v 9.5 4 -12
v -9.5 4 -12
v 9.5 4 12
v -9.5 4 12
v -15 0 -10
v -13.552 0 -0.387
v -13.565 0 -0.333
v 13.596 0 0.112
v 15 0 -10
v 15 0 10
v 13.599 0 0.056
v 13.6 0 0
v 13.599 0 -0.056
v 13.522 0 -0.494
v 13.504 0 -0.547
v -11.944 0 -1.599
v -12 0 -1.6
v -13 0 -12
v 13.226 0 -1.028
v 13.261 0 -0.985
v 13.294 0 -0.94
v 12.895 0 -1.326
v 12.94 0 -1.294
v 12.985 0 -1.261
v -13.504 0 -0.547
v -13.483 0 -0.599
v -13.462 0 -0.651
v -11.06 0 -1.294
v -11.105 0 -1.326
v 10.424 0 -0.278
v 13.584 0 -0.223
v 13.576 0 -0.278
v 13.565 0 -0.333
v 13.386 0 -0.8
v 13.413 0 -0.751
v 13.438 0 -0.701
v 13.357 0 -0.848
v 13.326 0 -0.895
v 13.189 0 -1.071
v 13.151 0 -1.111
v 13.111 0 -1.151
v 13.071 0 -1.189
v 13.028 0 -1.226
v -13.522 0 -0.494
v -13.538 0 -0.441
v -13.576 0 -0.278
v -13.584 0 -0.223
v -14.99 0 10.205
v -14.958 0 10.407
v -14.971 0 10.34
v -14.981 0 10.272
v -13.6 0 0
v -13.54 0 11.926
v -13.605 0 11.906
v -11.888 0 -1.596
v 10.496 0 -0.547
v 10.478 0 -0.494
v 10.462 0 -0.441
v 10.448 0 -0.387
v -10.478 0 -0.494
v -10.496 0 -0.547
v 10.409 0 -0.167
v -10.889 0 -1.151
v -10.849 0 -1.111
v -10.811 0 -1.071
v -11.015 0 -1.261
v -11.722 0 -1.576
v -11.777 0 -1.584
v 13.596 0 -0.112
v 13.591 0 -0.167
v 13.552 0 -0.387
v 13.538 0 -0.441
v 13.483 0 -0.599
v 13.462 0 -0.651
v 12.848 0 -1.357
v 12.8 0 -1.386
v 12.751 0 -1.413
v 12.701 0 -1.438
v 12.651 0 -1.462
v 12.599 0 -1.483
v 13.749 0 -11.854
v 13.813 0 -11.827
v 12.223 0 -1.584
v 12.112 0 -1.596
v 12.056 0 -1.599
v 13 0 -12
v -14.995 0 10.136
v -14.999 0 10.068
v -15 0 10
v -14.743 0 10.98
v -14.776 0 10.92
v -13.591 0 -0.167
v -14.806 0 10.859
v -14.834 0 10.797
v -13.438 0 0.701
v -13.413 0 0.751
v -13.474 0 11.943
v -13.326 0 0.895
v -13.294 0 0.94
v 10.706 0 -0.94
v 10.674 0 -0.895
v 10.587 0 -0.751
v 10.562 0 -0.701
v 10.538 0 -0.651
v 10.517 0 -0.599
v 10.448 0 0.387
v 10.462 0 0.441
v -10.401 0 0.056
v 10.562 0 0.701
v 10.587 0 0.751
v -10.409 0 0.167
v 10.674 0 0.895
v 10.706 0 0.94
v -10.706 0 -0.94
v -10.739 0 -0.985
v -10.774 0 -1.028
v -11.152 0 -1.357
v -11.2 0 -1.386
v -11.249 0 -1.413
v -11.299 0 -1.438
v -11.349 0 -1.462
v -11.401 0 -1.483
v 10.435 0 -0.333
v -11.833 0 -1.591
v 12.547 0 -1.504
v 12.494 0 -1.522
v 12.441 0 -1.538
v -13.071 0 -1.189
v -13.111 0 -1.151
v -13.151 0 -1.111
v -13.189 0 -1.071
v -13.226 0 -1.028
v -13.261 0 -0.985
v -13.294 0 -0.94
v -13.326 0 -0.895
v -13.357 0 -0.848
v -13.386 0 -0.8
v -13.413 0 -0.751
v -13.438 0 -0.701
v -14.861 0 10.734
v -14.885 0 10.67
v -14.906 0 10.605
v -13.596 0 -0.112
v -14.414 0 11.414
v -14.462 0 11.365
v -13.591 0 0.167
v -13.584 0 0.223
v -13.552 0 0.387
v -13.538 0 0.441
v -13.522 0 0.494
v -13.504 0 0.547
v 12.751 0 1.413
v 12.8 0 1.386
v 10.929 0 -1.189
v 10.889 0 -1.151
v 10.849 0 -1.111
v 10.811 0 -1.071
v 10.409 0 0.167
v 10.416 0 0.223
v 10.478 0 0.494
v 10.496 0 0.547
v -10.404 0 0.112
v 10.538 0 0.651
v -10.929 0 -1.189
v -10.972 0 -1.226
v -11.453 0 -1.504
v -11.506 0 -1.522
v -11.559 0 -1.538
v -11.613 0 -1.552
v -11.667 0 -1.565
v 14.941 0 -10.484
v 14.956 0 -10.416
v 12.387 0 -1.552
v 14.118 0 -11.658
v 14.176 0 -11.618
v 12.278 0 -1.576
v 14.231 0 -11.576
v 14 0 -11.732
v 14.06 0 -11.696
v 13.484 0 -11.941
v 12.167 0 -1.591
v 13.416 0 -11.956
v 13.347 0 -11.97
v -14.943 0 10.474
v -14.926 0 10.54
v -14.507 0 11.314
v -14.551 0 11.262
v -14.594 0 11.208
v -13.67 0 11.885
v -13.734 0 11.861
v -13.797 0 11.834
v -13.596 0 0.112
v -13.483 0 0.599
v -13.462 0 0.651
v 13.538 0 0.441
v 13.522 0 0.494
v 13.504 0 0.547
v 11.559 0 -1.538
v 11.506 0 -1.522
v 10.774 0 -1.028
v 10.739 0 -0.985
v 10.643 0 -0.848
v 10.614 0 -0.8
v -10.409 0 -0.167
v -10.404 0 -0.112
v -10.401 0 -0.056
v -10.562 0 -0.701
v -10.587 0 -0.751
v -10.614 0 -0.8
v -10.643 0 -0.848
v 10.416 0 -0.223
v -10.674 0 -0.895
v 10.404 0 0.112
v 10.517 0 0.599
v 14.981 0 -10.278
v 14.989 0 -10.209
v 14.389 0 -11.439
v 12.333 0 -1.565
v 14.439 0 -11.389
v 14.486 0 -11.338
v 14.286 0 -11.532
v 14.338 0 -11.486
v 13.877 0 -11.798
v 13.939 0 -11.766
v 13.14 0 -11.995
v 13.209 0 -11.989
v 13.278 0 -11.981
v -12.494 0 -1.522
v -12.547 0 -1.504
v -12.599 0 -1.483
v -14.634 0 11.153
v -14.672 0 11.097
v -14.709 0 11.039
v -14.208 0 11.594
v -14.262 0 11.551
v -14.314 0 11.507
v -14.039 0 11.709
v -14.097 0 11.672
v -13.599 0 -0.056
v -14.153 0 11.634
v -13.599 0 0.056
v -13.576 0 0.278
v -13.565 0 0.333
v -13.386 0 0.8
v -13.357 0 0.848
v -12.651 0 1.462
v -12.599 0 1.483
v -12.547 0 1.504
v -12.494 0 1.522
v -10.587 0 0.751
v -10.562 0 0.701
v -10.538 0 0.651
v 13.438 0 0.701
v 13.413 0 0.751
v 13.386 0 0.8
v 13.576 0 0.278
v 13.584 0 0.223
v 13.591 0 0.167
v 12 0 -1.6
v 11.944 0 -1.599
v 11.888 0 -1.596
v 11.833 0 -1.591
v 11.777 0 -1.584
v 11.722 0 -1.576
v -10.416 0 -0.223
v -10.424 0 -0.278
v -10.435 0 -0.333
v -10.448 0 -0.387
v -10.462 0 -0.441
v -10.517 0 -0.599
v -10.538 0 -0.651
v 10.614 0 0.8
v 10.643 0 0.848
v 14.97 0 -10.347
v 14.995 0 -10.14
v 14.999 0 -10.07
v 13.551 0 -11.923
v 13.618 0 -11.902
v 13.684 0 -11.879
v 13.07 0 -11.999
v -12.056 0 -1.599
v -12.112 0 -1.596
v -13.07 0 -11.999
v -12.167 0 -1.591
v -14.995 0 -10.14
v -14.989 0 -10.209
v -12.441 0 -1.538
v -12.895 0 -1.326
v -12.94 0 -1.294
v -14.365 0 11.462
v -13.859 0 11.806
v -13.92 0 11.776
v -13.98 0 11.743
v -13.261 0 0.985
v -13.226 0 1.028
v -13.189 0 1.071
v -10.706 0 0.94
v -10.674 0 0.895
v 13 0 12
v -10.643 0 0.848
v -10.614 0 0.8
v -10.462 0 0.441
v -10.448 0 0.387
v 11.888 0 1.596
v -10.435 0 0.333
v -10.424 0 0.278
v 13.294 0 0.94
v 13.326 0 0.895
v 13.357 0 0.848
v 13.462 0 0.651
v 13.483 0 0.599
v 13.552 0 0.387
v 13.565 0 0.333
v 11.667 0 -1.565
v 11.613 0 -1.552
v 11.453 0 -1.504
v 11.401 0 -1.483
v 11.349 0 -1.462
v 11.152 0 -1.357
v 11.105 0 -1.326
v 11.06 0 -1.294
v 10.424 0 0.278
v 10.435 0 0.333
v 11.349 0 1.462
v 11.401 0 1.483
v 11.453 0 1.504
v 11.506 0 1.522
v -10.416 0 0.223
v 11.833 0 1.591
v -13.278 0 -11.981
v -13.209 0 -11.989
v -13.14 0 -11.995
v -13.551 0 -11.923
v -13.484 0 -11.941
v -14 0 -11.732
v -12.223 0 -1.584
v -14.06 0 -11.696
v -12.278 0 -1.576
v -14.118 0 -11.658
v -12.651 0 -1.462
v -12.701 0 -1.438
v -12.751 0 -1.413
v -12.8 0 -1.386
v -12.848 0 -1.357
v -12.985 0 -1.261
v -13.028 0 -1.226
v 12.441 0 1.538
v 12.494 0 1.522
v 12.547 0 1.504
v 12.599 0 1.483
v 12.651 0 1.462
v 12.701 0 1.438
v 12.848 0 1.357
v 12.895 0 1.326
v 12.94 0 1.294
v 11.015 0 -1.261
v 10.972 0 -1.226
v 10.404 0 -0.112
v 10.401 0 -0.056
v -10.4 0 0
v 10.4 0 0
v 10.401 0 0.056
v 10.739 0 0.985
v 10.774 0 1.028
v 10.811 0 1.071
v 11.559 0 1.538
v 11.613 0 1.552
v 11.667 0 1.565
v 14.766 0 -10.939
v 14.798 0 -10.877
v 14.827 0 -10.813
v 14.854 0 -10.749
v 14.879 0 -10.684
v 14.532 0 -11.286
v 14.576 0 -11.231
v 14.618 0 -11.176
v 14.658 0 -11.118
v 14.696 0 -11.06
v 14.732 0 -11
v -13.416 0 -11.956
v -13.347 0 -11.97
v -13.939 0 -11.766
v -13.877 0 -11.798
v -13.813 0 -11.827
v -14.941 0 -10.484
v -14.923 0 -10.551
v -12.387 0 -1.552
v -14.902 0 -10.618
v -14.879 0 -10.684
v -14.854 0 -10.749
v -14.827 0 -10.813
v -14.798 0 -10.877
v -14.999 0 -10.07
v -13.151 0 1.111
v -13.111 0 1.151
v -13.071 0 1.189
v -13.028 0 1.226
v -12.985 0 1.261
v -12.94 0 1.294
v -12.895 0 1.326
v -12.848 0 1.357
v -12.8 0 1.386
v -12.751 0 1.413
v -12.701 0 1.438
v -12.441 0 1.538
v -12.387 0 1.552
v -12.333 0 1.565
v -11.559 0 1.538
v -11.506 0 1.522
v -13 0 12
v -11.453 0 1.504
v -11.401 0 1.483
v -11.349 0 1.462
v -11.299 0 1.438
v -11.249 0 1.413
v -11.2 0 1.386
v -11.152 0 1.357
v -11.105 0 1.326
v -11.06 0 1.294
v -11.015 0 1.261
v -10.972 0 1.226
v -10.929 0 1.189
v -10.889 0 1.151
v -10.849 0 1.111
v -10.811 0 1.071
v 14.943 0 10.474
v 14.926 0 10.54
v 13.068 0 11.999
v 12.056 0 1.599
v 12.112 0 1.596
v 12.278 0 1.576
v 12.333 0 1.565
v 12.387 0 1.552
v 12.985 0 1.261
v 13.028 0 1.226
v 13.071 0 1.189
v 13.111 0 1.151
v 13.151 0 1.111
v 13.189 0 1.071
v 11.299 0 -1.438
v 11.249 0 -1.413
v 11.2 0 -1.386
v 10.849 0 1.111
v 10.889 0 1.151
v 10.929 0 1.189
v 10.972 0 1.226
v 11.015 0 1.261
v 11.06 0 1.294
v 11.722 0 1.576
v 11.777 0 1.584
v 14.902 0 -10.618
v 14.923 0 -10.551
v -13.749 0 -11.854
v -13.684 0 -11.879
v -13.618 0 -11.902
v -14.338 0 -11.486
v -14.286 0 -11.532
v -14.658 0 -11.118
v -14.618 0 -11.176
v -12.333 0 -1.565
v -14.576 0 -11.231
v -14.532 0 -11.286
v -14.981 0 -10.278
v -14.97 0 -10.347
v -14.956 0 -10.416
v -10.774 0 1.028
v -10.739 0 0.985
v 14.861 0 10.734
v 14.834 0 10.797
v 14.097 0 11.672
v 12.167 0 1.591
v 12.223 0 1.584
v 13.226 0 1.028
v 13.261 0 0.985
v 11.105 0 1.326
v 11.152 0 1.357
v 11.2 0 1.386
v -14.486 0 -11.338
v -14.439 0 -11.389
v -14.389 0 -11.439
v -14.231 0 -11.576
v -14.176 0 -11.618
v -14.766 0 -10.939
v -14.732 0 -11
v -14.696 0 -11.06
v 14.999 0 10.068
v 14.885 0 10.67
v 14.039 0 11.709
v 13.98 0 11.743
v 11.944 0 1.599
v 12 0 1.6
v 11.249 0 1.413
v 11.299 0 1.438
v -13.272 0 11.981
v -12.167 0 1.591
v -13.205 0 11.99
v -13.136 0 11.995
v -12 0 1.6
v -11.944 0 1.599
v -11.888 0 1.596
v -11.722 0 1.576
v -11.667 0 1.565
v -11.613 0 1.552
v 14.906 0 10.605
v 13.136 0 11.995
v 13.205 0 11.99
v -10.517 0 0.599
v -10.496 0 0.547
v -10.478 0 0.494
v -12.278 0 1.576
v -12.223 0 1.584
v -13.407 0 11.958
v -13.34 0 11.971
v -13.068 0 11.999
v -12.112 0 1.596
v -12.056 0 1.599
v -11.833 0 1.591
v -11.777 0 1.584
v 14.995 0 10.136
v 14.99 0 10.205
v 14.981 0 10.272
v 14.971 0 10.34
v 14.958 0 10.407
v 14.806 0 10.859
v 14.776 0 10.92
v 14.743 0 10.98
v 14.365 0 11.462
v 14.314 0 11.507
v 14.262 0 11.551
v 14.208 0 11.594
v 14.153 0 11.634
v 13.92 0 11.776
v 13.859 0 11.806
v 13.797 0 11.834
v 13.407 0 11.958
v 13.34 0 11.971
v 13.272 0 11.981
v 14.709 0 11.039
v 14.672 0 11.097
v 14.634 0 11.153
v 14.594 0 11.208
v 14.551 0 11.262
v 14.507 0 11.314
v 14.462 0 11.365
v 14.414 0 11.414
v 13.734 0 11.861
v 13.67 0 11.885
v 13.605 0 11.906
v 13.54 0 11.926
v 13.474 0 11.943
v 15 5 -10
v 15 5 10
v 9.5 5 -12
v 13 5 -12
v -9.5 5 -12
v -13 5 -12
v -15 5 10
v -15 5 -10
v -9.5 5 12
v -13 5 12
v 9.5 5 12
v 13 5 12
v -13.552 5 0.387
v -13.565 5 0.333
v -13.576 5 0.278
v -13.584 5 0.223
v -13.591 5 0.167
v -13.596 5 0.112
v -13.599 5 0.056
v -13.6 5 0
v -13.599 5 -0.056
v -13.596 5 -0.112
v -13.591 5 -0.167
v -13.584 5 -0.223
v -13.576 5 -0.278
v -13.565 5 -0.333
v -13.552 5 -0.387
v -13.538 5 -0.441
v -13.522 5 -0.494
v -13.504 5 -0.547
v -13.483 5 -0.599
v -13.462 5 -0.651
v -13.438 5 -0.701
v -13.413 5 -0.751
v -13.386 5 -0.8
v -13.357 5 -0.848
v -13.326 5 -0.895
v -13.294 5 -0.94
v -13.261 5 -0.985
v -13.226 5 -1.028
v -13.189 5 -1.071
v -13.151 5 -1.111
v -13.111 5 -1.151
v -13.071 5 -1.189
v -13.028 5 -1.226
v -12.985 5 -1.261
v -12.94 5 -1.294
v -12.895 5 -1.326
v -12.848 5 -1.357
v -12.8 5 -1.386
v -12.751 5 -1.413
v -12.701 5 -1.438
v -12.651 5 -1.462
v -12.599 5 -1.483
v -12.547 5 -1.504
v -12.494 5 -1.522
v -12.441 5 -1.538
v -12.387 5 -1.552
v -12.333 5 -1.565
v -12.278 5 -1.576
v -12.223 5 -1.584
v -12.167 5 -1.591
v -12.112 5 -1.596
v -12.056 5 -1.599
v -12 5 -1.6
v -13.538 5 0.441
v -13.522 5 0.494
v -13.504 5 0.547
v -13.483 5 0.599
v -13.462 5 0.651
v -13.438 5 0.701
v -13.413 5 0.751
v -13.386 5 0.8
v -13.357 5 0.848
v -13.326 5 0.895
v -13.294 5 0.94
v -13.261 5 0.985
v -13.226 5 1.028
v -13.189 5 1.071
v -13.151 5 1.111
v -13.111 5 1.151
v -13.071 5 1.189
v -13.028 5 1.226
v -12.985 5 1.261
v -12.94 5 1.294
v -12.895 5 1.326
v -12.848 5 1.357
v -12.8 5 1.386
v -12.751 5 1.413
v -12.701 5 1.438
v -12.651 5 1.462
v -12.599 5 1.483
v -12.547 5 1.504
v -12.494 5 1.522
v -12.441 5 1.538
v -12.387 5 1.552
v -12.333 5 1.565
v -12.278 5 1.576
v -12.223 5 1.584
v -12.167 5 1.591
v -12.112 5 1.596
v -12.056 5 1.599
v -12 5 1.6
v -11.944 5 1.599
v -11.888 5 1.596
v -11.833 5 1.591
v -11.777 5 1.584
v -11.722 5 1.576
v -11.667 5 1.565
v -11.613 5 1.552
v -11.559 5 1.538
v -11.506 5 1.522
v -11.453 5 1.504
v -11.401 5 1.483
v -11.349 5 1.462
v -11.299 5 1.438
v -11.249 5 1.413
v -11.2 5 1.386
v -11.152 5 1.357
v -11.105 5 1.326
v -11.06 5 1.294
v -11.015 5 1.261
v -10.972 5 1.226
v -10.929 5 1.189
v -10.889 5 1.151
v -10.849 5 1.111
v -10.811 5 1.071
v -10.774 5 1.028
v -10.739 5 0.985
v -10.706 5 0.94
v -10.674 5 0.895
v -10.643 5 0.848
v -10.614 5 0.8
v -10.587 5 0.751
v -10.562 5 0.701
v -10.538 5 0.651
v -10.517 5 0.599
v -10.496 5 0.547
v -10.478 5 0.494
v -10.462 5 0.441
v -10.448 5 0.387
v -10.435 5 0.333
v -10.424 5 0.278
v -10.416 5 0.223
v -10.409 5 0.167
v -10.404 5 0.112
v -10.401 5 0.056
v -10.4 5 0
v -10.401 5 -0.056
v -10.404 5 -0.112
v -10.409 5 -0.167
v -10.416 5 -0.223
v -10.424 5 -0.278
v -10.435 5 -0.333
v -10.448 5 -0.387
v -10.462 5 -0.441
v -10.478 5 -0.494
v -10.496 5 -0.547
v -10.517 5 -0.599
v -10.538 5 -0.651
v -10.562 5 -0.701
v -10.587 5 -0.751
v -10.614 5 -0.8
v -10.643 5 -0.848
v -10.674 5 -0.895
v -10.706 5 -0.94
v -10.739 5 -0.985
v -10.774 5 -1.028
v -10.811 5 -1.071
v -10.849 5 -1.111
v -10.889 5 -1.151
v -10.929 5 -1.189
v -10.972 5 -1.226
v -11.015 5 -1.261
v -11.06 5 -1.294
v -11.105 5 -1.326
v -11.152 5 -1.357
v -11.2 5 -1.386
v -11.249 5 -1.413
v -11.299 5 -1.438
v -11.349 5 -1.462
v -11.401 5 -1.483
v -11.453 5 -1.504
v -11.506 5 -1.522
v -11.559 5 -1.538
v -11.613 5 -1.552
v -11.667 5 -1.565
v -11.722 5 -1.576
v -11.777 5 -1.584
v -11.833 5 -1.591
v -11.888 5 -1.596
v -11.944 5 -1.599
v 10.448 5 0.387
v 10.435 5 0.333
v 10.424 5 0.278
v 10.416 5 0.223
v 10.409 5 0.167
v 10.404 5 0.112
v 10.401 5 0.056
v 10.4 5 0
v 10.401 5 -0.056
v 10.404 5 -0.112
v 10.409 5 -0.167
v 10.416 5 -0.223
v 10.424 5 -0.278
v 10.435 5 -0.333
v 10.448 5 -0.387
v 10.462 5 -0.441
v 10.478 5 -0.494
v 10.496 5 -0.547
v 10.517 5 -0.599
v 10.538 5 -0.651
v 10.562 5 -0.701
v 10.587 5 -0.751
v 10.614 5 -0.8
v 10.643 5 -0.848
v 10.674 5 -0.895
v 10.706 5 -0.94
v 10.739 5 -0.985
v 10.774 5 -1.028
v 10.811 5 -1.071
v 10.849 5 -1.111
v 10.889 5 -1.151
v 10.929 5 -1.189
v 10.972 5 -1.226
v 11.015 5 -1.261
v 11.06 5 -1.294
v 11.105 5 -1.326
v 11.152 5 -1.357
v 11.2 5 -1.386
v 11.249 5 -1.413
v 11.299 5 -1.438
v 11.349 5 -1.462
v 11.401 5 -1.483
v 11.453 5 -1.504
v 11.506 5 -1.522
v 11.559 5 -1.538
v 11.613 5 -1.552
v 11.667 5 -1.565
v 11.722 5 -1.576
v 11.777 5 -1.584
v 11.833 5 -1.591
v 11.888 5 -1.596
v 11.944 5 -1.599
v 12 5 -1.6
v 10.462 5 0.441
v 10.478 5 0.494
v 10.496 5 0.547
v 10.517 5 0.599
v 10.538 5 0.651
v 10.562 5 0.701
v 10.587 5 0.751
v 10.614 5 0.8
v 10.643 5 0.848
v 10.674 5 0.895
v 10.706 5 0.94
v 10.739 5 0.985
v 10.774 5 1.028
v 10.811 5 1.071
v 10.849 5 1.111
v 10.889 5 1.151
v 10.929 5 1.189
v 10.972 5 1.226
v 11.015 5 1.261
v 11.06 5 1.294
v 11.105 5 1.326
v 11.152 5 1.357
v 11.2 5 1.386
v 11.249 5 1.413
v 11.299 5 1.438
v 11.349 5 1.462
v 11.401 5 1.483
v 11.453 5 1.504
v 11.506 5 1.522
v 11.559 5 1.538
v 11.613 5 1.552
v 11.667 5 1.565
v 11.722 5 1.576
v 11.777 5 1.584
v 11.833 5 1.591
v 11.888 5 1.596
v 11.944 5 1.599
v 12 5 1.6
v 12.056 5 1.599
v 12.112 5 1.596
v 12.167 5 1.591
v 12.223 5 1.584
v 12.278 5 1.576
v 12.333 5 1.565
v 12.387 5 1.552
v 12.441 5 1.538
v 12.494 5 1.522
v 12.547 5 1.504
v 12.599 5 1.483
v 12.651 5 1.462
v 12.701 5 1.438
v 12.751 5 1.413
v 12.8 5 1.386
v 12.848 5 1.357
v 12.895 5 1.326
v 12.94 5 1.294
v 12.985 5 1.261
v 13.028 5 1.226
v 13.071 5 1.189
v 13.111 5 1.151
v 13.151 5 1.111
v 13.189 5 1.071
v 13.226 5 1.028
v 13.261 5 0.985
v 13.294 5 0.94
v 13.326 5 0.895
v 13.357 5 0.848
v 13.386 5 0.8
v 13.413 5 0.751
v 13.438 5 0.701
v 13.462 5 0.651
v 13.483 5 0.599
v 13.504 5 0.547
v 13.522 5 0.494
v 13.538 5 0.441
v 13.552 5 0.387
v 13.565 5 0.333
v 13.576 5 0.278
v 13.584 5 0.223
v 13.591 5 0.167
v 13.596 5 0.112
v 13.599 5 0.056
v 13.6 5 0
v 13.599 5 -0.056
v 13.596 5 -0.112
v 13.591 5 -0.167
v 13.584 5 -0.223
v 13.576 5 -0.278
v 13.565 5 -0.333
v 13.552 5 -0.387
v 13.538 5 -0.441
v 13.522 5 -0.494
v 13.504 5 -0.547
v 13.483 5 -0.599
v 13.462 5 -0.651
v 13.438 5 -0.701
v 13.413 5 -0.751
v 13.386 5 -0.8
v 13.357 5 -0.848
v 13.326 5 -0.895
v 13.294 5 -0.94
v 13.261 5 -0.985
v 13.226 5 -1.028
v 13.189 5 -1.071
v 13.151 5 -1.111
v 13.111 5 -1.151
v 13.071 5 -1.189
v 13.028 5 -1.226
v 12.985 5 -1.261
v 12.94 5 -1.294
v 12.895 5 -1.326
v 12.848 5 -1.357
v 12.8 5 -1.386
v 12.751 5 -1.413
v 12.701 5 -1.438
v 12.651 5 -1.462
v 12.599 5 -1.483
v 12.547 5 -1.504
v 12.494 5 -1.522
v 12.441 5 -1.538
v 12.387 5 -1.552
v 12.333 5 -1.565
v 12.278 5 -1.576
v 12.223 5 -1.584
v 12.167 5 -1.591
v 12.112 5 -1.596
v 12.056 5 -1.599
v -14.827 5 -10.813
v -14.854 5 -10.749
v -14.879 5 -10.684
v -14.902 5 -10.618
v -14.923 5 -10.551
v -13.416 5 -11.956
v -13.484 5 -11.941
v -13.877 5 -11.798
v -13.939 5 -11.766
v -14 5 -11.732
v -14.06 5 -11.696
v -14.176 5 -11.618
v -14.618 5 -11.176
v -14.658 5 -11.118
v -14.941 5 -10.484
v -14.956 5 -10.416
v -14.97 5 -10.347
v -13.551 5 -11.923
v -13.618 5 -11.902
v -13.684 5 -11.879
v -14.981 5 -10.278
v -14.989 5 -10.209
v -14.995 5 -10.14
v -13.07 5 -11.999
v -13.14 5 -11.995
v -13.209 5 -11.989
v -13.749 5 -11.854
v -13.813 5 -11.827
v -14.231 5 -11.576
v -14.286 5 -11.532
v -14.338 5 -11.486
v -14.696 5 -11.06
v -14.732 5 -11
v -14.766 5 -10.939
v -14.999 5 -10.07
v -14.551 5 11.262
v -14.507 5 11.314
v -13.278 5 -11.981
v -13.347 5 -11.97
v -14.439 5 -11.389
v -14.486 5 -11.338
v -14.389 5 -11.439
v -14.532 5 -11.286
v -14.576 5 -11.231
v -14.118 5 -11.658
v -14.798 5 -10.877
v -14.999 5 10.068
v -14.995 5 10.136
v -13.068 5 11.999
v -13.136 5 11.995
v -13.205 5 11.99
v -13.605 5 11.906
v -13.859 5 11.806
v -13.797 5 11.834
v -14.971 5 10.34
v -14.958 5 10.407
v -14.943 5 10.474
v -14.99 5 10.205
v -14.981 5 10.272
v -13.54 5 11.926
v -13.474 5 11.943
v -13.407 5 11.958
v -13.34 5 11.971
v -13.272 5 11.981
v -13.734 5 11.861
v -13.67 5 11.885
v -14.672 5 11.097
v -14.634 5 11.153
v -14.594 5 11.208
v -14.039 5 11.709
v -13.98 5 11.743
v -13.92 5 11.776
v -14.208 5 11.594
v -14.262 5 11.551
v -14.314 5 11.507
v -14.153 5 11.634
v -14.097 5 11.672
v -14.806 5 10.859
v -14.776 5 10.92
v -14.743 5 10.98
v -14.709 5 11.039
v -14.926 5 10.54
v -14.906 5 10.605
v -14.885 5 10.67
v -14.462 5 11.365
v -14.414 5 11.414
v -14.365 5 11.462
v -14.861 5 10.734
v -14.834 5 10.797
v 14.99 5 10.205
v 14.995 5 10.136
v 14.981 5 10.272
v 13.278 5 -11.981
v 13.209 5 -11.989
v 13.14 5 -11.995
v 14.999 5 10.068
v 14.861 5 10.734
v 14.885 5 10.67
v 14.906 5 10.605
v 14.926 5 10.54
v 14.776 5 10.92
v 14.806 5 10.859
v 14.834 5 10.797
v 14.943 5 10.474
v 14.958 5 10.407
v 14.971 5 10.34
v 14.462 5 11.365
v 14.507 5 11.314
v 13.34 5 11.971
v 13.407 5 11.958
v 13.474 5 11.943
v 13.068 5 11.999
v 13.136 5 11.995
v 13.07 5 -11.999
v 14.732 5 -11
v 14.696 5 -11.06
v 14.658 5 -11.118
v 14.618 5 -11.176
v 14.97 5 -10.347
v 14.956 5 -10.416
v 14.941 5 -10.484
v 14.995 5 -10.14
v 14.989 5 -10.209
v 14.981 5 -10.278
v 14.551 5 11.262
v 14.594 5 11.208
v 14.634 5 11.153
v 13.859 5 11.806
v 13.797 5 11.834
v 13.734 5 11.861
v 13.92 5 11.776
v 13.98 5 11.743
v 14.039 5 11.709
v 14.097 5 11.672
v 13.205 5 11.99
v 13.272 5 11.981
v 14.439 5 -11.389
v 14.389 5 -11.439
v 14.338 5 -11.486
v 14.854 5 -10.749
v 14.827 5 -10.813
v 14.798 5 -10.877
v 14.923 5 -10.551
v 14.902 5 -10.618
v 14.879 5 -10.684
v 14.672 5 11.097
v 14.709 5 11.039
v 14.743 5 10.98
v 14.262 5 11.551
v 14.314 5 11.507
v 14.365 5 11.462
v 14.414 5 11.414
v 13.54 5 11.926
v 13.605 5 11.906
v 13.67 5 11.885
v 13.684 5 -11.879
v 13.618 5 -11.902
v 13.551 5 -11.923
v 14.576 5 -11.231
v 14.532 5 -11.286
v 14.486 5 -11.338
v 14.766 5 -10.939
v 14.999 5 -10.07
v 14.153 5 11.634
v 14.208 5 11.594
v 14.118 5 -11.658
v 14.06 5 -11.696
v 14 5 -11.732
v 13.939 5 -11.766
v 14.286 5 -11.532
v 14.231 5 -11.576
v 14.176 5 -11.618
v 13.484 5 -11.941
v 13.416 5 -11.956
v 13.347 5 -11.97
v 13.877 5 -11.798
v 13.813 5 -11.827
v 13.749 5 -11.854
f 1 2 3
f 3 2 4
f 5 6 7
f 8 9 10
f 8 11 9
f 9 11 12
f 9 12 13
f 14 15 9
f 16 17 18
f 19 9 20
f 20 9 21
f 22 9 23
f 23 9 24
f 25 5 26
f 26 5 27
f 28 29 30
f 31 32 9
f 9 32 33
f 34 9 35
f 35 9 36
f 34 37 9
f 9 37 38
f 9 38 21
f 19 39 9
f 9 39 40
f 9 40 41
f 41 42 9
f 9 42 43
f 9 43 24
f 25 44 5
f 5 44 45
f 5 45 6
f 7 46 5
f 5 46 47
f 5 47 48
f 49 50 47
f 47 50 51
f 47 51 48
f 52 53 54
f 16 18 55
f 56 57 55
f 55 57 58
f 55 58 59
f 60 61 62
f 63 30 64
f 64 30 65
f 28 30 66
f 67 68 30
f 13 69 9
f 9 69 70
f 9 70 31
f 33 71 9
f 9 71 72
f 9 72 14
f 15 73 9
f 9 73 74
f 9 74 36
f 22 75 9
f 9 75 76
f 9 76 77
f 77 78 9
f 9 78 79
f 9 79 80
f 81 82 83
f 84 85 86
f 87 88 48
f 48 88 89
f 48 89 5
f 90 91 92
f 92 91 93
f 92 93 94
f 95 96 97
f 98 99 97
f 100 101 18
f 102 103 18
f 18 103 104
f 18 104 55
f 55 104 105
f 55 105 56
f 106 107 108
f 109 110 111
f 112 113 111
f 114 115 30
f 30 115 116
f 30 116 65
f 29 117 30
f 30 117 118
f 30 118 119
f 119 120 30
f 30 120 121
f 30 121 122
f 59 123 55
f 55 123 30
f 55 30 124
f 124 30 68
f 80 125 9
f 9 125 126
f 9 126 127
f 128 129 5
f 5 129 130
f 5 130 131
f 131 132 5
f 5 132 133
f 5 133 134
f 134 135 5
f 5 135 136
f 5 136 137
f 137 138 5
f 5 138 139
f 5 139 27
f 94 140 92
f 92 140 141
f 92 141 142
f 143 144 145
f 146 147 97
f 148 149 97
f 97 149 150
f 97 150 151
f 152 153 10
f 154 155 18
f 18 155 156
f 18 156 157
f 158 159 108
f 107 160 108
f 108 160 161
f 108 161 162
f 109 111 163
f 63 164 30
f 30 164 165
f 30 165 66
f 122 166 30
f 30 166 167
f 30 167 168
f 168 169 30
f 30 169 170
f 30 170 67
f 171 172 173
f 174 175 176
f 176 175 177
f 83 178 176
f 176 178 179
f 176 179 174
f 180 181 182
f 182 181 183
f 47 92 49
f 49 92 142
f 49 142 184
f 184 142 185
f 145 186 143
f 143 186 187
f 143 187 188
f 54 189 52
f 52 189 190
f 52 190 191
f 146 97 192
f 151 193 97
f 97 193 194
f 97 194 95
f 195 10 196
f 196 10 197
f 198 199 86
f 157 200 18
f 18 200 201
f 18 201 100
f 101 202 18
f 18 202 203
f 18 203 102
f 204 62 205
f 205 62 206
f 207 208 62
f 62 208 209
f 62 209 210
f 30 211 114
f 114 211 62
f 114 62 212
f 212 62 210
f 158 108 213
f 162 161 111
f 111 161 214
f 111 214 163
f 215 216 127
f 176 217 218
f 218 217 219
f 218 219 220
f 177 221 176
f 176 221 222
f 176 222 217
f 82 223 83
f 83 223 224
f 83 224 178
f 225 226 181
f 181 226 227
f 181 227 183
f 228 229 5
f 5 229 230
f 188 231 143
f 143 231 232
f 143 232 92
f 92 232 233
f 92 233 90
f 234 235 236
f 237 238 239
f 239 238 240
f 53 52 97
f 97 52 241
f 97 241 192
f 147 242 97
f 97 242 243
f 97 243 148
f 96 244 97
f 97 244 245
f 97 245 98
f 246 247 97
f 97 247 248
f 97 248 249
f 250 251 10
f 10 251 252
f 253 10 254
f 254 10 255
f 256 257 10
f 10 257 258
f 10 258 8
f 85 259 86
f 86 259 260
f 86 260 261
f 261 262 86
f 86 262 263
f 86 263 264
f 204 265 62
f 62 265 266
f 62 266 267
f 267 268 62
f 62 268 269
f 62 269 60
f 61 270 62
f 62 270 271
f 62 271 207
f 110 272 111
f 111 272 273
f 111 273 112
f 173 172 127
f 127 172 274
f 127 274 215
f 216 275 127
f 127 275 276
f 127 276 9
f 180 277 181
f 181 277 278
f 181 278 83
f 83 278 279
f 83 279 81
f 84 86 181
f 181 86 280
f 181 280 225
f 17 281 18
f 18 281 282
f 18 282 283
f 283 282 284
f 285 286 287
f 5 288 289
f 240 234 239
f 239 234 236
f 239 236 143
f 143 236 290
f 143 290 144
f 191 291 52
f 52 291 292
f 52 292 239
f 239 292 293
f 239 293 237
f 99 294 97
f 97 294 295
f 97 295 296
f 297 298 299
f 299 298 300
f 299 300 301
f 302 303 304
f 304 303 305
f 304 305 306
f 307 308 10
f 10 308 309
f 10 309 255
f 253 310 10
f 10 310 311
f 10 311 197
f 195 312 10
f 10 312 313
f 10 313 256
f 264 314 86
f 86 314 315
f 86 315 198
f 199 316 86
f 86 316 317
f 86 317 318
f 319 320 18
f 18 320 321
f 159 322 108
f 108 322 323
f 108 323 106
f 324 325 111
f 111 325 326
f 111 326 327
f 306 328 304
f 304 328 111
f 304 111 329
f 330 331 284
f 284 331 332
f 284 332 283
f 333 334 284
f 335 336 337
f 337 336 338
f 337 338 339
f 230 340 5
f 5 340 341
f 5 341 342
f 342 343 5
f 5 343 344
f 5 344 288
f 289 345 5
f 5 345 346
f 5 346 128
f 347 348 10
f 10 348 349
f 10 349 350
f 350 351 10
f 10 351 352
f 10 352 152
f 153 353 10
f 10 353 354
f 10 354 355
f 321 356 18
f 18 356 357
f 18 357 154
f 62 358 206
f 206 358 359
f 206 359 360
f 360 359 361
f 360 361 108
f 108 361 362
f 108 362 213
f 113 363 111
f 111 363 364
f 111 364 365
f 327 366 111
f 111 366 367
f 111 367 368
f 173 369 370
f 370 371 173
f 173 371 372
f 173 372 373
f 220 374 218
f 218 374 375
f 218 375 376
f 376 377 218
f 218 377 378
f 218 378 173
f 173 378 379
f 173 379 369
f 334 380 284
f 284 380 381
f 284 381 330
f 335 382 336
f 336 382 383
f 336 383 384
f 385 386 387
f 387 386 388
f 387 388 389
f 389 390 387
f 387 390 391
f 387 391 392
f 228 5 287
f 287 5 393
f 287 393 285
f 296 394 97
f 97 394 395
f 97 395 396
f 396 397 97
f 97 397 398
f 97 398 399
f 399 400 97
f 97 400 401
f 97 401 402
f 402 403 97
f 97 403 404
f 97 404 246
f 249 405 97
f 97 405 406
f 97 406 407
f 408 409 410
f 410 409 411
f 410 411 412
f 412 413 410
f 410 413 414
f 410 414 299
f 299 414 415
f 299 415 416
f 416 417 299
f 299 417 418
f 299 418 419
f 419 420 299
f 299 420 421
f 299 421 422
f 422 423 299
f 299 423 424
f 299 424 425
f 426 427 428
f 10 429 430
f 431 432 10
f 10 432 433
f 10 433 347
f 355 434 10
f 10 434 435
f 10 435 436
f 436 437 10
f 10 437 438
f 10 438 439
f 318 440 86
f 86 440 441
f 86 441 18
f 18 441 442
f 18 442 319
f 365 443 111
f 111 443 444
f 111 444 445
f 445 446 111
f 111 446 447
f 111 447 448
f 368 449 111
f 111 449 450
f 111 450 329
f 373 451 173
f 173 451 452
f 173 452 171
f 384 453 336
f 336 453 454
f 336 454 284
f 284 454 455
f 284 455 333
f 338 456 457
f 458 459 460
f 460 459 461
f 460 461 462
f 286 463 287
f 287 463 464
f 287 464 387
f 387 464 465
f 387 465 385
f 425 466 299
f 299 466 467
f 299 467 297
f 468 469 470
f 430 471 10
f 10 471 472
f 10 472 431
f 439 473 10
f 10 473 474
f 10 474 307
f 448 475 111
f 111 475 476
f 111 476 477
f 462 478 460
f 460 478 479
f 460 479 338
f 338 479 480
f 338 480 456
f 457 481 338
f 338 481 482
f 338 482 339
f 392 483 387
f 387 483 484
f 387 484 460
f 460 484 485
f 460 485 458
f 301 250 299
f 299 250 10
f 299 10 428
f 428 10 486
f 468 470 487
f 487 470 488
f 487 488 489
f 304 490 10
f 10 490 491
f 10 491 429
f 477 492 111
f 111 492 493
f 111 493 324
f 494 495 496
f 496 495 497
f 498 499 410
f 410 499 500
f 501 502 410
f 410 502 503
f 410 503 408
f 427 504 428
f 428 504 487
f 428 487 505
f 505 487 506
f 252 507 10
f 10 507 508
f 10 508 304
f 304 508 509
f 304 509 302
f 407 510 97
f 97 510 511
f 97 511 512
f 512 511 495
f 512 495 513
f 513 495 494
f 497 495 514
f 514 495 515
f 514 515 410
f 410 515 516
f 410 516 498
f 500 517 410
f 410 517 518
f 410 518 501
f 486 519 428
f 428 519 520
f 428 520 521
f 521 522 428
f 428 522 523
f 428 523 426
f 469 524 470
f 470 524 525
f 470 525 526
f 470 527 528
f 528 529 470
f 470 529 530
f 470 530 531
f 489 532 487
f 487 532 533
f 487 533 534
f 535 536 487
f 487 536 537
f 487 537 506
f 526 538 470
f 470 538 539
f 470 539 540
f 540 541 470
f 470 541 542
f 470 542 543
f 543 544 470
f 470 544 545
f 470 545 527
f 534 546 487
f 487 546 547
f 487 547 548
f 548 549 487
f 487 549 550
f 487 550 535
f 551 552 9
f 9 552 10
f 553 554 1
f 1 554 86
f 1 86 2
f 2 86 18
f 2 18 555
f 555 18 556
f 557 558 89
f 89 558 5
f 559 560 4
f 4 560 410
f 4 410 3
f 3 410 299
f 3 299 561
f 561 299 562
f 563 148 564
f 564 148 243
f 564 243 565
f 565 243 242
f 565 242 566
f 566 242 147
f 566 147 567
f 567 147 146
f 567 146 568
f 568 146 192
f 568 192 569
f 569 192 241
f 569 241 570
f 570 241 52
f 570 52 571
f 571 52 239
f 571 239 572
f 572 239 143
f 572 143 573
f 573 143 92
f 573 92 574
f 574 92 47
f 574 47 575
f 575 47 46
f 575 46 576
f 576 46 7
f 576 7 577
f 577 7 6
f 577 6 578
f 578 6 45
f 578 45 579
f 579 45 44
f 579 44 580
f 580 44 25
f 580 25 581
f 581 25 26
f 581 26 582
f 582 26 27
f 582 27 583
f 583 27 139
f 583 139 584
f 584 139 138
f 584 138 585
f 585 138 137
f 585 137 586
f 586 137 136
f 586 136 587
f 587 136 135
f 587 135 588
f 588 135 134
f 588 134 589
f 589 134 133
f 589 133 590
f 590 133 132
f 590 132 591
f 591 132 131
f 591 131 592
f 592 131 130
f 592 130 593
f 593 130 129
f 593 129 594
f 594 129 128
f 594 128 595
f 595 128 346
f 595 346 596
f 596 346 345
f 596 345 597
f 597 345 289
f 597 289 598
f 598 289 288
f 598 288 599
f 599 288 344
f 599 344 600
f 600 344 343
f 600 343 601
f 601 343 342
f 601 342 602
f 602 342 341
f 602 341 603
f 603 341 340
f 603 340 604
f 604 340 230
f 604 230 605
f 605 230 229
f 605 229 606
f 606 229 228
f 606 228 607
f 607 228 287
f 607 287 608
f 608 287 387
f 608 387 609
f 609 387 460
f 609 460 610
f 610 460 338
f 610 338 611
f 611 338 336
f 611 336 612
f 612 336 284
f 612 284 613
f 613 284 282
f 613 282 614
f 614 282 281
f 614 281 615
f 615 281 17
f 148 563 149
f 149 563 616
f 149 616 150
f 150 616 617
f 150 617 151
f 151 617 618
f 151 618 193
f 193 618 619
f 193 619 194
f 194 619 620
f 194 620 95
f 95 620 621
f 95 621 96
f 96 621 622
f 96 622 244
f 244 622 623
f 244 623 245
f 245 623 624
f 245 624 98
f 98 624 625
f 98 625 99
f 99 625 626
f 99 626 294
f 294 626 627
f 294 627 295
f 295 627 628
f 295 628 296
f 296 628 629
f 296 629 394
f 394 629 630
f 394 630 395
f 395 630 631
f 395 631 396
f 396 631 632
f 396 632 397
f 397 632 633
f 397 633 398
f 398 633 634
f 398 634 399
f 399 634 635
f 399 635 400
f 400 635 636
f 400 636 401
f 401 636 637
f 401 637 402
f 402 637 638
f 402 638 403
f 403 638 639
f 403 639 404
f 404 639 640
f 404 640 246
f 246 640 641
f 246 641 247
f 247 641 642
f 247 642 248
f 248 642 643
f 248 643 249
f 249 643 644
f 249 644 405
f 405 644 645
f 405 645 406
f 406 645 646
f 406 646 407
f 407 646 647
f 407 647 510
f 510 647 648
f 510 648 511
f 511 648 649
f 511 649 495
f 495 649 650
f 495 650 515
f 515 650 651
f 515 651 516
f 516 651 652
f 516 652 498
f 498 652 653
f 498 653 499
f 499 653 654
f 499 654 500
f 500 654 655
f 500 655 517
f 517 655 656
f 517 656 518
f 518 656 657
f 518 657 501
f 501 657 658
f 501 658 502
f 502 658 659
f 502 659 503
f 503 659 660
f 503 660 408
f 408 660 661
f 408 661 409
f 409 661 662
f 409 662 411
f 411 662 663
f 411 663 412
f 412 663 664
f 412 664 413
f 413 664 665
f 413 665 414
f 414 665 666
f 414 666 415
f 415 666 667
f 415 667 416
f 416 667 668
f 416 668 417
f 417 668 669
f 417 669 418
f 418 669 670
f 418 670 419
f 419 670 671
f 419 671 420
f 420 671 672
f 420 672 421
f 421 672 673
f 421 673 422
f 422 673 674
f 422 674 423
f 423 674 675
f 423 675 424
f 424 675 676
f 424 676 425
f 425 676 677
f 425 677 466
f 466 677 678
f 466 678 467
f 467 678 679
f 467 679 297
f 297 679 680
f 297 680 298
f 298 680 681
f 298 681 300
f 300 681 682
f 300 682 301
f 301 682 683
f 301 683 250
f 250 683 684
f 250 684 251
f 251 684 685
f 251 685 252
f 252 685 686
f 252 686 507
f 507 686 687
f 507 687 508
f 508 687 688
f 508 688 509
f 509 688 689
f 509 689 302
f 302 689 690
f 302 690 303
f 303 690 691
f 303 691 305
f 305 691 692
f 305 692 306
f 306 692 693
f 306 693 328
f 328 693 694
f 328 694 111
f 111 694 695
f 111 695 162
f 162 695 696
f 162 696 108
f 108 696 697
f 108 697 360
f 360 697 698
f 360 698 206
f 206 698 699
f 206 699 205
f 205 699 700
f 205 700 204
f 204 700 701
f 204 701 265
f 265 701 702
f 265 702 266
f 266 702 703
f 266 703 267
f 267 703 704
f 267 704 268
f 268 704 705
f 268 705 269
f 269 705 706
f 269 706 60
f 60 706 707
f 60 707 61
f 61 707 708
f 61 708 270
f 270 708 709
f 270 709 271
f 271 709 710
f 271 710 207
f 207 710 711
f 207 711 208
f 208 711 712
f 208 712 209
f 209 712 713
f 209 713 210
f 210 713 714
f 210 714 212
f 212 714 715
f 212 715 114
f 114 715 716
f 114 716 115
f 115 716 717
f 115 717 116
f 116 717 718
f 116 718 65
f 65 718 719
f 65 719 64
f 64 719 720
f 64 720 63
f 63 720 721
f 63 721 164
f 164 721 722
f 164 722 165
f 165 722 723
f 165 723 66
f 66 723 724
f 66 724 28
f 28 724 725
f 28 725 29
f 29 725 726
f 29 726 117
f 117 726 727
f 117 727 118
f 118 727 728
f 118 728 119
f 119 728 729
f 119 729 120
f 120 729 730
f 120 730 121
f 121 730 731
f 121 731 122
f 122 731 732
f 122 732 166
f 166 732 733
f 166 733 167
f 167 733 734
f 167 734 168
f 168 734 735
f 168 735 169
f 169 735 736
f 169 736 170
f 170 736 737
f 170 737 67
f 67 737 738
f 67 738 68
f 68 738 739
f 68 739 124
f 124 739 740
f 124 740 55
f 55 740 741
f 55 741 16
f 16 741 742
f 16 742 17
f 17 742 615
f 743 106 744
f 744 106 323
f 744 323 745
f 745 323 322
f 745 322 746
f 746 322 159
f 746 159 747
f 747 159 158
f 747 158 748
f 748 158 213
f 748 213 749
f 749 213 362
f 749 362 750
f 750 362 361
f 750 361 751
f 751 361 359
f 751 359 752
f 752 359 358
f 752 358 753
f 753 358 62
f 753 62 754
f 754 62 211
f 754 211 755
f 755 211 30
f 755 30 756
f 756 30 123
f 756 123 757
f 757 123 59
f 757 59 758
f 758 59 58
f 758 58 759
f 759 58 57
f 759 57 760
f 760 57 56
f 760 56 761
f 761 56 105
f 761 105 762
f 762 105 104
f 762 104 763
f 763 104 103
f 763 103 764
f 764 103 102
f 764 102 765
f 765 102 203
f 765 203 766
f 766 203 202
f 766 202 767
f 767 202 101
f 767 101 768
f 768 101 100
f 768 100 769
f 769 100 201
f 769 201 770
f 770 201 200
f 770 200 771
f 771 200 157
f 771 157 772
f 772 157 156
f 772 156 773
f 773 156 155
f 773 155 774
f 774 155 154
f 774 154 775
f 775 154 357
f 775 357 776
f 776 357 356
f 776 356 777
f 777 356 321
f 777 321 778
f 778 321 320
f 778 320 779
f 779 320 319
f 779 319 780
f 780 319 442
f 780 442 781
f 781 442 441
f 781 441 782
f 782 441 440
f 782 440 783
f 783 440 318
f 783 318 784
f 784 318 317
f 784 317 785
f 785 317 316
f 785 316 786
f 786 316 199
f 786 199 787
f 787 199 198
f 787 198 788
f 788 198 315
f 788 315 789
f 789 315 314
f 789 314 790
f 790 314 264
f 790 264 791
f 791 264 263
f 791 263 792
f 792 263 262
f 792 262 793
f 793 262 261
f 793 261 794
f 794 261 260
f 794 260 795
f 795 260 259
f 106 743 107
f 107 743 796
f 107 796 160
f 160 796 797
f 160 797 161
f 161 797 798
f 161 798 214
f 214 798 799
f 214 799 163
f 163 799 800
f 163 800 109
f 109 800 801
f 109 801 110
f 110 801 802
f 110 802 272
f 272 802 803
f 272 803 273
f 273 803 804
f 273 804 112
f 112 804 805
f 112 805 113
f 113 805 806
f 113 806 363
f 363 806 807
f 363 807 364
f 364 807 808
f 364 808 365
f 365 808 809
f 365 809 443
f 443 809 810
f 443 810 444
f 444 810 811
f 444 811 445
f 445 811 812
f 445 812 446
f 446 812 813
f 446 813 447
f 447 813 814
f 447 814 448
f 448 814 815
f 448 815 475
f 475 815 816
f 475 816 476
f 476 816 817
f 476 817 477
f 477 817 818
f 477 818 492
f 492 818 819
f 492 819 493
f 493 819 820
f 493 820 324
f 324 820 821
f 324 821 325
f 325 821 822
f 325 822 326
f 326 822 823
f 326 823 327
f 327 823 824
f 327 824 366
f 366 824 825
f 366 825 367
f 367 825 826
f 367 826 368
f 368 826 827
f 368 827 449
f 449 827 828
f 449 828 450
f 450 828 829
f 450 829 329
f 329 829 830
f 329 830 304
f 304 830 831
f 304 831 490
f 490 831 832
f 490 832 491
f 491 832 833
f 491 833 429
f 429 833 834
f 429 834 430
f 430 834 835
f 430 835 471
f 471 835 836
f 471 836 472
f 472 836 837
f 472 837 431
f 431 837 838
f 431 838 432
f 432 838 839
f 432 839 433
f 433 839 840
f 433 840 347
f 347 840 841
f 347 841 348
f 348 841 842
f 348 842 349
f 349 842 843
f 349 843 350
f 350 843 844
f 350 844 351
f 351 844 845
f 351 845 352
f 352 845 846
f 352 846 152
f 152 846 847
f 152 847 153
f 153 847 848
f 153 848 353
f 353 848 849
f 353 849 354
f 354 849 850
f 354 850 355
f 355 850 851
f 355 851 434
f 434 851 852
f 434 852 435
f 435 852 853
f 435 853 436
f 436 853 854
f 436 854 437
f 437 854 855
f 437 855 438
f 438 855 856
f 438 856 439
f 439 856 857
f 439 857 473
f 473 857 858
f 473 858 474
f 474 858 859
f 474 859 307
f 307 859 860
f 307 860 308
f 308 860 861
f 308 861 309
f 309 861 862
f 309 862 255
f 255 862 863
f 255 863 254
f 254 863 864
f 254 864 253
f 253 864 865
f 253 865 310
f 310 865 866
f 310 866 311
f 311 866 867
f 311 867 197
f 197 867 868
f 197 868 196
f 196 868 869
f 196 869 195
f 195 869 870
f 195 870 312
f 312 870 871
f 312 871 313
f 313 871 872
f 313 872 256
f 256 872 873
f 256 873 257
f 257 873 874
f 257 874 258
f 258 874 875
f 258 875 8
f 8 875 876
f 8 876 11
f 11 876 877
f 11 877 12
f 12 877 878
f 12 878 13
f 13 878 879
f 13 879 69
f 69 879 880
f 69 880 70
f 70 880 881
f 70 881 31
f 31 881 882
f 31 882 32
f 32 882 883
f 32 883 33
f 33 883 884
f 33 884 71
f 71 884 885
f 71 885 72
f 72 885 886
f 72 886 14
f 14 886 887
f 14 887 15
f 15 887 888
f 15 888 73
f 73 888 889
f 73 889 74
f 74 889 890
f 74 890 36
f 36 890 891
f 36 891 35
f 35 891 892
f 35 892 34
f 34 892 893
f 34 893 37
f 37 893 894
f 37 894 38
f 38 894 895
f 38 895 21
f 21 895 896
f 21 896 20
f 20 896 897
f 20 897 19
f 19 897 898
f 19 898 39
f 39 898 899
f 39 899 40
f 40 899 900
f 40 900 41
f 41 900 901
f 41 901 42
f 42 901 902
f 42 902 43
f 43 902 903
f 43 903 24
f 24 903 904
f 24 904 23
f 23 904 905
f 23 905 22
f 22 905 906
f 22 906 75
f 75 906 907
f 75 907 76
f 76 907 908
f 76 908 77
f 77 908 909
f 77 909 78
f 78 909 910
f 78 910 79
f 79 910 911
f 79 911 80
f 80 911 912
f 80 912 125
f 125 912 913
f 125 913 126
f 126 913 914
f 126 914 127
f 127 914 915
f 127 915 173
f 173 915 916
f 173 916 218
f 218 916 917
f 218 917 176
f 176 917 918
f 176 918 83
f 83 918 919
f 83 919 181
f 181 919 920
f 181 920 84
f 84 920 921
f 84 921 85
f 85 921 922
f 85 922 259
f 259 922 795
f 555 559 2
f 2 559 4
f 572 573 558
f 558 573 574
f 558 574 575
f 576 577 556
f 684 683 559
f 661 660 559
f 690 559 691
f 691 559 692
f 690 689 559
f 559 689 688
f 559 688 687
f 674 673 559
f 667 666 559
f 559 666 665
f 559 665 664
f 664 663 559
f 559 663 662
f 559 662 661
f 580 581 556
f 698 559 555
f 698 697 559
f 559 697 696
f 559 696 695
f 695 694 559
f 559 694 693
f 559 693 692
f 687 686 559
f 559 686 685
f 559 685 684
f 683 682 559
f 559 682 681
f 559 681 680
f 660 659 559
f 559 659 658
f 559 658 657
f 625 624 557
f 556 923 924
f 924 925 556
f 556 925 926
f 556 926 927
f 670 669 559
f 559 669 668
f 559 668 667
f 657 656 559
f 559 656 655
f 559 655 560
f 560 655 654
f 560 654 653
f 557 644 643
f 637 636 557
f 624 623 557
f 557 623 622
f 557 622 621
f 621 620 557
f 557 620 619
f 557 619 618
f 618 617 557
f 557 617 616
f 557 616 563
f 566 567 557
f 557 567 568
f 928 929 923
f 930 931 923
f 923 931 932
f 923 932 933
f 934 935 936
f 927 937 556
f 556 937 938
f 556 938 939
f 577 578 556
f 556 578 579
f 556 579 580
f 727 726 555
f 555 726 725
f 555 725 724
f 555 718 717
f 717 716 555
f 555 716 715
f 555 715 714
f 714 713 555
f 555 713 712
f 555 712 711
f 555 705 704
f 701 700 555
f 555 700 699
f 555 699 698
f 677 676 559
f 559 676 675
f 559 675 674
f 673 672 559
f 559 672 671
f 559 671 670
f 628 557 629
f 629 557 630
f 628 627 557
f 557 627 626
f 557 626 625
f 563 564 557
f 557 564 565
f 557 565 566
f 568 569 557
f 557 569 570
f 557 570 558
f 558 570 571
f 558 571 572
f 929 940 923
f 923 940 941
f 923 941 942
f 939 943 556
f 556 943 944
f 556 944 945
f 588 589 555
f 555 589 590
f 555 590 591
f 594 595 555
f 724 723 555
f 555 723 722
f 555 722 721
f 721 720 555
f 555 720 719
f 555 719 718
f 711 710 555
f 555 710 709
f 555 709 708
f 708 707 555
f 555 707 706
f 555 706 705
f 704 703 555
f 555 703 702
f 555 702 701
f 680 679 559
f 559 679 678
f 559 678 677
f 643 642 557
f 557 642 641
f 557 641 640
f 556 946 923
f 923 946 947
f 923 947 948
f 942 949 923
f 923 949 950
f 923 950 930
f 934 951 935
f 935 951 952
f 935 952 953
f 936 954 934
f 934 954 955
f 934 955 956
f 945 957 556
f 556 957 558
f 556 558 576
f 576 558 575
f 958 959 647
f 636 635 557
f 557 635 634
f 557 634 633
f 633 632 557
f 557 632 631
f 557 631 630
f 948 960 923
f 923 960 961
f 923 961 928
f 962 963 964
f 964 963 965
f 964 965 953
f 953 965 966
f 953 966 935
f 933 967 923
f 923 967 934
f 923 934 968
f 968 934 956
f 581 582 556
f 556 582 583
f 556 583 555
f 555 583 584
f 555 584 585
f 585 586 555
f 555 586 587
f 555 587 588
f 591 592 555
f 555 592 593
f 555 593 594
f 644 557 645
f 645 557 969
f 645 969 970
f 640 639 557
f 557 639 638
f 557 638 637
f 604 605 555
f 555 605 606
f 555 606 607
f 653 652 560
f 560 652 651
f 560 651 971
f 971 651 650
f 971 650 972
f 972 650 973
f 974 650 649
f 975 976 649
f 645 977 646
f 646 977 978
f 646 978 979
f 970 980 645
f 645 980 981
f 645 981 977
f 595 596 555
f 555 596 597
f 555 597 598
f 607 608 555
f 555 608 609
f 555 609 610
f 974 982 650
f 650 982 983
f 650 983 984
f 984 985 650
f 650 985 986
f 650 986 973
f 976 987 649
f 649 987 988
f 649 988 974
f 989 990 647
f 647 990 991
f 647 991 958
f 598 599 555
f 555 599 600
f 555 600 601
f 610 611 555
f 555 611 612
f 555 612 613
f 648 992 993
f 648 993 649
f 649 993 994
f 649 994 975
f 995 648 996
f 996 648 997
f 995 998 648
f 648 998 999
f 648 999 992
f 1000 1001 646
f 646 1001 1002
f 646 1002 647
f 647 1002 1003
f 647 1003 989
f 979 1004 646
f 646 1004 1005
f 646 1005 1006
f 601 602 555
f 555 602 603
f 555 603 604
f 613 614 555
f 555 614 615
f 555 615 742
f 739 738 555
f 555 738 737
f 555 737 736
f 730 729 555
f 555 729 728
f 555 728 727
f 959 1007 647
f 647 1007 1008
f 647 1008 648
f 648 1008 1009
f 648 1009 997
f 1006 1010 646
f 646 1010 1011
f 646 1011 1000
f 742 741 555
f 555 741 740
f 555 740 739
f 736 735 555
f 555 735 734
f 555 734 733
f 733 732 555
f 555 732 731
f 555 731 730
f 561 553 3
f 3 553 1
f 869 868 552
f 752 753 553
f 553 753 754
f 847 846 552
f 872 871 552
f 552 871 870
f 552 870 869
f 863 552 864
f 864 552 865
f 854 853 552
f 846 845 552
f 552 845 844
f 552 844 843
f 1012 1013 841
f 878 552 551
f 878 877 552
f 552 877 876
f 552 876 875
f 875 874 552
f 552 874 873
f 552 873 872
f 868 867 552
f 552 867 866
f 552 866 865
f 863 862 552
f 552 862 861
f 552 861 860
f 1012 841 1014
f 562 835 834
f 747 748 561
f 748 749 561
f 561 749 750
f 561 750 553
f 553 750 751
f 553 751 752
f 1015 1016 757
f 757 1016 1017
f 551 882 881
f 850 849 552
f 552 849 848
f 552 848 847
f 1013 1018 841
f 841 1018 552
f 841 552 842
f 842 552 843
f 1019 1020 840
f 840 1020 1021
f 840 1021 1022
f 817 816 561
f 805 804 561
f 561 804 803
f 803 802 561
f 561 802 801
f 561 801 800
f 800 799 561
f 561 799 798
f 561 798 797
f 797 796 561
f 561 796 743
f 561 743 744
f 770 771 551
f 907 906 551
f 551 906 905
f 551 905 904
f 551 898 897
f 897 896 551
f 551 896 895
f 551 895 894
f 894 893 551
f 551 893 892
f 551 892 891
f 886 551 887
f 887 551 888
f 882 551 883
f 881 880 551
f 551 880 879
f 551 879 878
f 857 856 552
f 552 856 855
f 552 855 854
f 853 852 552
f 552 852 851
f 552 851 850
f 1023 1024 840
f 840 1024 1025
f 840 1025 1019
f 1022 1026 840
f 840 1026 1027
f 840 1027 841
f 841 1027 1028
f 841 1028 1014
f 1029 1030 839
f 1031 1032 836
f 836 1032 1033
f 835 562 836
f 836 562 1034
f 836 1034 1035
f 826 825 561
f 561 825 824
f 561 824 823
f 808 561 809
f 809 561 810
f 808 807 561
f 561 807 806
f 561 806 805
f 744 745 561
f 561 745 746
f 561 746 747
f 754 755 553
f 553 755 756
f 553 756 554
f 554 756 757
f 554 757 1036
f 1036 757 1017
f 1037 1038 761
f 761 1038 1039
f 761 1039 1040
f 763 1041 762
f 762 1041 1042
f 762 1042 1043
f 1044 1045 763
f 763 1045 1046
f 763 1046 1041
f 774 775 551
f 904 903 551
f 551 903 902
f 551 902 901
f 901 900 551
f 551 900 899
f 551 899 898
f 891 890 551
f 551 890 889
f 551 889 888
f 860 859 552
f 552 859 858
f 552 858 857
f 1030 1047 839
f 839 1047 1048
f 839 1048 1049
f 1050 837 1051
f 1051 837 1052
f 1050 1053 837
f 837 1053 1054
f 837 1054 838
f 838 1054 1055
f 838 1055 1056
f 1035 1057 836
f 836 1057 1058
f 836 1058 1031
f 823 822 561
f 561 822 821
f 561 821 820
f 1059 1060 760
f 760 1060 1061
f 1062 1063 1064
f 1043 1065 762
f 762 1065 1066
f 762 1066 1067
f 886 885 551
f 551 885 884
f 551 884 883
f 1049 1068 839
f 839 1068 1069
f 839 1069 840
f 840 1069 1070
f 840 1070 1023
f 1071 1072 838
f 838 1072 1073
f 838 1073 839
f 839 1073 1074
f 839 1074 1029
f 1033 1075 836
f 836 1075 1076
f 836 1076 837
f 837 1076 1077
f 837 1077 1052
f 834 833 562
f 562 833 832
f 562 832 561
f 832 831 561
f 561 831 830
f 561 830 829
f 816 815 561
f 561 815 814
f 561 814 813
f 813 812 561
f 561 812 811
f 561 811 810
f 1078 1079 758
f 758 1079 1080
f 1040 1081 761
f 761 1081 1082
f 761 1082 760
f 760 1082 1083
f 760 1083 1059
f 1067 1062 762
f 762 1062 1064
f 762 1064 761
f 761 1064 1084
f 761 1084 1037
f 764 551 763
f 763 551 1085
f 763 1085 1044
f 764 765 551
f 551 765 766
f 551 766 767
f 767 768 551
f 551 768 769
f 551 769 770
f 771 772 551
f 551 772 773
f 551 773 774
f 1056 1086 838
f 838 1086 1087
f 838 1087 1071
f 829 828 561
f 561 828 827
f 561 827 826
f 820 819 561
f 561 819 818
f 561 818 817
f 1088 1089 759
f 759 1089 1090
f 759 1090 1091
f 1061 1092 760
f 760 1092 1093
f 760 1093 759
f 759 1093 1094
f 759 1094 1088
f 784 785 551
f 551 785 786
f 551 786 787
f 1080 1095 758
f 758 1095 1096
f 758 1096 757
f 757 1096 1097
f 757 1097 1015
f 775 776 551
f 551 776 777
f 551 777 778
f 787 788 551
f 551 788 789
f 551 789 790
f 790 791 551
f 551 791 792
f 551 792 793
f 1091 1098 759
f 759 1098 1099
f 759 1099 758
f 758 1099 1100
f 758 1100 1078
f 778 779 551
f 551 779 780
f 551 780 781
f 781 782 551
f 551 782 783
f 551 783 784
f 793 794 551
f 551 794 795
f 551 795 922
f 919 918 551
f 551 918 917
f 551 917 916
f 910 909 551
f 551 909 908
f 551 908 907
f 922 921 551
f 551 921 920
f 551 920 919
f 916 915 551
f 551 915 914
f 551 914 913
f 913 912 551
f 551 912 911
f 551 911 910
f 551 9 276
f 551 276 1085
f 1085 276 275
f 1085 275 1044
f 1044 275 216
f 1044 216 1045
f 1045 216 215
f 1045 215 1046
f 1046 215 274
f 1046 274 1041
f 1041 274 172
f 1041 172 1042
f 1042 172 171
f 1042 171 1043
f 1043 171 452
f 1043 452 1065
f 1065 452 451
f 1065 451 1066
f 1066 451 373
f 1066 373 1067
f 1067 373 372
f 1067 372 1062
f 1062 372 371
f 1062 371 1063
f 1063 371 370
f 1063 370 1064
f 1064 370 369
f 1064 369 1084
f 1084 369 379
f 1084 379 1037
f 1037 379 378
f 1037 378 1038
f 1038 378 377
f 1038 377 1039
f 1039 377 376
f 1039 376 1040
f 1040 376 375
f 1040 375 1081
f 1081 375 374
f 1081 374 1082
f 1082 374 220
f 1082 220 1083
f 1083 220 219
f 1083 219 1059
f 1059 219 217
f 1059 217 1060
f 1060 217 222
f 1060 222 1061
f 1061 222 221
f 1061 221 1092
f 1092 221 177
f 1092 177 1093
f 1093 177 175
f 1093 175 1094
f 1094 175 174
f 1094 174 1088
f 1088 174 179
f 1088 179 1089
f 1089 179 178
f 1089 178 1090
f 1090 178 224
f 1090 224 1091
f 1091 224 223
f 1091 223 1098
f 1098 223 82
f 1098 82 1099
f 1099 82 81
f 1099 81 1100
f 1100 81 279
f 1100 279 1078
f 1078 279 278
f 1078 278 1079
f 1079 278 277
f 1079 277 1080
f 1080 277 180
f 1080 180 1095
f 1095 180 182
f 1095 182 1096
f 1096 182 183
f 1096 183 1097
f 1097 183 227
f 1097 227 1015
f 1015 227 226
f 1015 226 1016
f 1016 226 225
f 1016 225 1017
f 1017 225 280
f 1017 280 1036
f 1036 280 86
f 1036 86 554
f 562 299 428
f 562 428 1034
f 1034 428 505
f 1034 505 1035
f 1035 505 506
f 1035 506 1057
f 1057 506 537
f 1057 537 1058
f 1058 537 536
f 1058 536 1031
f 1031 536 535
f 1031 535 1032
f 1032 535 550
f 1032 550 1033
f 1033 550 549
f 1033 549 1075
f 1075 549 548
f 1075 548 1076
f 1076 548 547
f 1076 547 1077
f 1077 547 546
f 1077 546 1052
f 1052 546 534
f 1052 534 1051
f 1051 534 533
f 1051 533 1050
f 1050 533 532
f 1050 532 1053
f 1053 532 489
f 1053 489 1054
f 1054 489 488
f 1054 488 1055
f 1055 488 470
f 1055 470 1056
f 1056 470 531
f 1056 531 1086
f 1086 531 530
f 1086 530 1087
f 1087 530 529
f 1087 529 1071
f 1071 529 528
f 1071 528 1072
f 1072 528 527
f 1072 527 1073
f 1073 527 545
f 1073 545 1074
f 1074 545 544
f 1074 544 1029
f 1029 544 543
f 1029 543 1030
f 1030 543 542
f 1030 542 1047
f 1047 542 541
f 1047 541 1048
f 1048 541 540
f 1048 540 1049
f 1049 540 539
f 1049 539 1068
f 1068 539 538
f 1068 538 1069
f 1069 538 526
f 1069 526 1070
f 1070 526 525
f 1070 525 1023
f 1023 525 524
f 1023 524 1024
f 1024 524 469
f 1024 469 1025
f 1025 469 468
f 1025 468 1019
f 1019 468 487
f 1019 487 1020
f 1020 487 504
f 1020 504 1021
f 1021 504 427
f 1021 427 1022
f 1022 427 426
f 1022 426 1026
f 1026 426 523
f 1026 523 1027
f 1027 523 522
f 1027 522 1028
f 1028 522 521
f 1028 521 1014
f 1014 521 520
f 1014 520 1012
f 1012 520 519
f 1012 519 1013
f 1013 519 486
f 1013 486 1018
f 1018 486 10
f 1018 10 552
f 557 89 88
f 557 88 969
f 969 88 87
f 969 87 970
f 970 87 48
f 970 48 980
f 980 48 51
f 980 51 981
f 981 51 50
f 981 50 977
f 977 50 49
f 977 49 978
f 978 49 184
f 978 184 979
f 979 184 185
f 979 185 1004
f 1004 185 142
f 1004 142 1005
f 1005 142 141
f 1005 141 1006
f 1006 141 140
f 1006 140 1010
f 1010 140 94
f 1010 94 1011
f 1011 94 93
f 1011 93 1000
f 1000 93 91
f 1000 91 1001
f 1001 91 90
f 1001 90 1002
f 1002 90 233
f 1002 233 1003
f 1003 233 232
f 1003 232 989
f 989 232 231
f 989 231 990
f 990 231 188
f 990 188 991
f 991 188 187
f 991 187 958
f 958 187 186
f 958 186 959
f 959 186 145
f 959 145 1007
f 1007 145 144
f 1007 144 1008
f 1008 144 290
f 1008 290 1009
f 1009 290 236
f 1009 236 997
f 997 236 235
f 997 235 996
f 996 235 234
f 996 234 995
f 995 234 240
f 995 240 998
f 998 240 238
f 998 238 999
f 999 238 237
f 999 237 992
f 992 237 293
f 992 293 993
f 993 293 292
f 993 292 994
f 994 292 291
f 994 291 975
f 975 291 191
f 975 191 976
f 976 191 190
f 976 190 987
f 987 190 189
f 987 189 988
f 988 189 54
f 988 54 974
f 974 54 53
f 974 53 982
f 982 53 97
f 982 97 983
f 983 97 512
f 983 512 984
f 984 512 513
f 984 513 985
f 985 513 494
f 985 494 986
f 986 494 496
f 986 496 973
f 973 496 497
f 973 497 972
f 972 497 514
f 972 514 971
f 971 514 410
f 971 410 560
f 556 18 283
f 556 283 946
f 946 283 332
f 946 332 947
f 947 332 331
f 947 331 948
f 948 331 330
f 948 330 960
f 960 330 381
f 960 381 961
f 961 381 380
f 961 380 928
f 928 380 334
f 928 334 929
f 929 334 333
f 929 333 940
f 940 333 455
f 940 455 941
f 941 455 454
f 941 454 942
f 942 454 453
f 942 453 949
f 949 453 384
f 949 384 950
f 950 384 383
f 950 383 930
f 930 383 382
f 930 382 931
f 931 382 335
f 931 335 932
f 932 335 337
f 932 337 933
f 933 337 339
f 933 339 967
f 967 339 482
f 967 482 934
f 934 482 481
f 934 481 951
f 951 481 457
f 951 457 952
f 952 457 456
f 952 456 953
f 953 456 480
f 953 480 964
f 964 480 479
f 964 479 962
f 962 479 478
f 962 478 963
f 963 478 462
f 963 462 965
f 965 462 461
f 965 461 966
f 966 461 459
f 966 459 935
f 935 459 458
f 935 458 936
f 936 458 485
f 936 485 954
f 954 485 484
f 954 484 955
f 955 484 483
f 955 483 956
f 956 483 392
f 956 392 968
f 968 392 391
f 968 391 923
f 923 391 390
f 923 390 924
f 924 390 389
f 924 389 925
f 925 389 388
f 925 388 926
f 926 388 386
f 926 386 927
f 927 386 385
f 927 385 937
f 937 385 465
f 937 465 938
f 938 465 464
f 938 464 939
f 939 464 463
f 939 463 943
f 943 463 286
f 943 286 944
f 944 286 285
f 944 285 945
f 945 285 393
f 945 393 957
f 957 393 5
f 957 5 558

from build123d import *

# Parameters (mm, degrees)
SKETCH_1_W      = 30
SKETCH_1_H      = 24
SKETCH_1_R      = 1.6
EXTRUDE_1_DEPTH = 4
SKETCH_2_W      = 5.5
SKETCH_2_H      = 24
SKETCH_2_R      = 1.6
EXTRUDE_2_DEPTH = 1
FILLET_1_R      = 2


with BuildPart() as part:
    # 草图1 → 凸台-拉伸1 (new body)
    with BuildSketch(Plane(origin=(0, 0, 0), x_dir=(1, 0, 0), z_dir=(0, 1, 0))):
        Rectangle(SKETCH_1_W, SKETCH_1_H)
        with Locations((-12, 0)):
            Circle(SKETCH_1_R, mode=Mode.SUBTRACT)
        with Locations((12, 0)):
            Circle(SKETCH_1_R, mode=Mode.SUBTRACT)
    extrude(amount=EXTRUDE_1_DEPTH)

    # 草图2 → 凸台-拉伸2 (add)
    with BuildSketch(Plane(origin=(0, 4, 0), x_dir=(1, 0, 0), z_dir=(0, 1, 0))):
        with Locations((-12.25, 0)):
            Rectangle(SKETCH_2_W, SKETCH_2_H)
        with Locations((-12, 0)):
            Circle(SKETCH_2_R, mode=Mode.SUBTRACT)
        with Locations((12.25, 0)):
            Rectangle(SKETCH_2_W, SKETCH_2_H)
        with Locations((12, 0)):
            Circle(SKETCH_2_R, mode=Mode.SUBTRACT)
    extrude(amount=EXTRUDE_2_DEPTH)

    # 圆角1
    fillet_1_edges = [part.edges().sort_by_distance(p)[0] for p in [
        (15, 2.5, 12),
        (-15, 2.5, 12),
        (-15, 2.5, -12),
        (15, 2.5, -12),
    ]]
    fillet(fillet_1_edges, radius=FILLET_1_R)


solid = part.part
